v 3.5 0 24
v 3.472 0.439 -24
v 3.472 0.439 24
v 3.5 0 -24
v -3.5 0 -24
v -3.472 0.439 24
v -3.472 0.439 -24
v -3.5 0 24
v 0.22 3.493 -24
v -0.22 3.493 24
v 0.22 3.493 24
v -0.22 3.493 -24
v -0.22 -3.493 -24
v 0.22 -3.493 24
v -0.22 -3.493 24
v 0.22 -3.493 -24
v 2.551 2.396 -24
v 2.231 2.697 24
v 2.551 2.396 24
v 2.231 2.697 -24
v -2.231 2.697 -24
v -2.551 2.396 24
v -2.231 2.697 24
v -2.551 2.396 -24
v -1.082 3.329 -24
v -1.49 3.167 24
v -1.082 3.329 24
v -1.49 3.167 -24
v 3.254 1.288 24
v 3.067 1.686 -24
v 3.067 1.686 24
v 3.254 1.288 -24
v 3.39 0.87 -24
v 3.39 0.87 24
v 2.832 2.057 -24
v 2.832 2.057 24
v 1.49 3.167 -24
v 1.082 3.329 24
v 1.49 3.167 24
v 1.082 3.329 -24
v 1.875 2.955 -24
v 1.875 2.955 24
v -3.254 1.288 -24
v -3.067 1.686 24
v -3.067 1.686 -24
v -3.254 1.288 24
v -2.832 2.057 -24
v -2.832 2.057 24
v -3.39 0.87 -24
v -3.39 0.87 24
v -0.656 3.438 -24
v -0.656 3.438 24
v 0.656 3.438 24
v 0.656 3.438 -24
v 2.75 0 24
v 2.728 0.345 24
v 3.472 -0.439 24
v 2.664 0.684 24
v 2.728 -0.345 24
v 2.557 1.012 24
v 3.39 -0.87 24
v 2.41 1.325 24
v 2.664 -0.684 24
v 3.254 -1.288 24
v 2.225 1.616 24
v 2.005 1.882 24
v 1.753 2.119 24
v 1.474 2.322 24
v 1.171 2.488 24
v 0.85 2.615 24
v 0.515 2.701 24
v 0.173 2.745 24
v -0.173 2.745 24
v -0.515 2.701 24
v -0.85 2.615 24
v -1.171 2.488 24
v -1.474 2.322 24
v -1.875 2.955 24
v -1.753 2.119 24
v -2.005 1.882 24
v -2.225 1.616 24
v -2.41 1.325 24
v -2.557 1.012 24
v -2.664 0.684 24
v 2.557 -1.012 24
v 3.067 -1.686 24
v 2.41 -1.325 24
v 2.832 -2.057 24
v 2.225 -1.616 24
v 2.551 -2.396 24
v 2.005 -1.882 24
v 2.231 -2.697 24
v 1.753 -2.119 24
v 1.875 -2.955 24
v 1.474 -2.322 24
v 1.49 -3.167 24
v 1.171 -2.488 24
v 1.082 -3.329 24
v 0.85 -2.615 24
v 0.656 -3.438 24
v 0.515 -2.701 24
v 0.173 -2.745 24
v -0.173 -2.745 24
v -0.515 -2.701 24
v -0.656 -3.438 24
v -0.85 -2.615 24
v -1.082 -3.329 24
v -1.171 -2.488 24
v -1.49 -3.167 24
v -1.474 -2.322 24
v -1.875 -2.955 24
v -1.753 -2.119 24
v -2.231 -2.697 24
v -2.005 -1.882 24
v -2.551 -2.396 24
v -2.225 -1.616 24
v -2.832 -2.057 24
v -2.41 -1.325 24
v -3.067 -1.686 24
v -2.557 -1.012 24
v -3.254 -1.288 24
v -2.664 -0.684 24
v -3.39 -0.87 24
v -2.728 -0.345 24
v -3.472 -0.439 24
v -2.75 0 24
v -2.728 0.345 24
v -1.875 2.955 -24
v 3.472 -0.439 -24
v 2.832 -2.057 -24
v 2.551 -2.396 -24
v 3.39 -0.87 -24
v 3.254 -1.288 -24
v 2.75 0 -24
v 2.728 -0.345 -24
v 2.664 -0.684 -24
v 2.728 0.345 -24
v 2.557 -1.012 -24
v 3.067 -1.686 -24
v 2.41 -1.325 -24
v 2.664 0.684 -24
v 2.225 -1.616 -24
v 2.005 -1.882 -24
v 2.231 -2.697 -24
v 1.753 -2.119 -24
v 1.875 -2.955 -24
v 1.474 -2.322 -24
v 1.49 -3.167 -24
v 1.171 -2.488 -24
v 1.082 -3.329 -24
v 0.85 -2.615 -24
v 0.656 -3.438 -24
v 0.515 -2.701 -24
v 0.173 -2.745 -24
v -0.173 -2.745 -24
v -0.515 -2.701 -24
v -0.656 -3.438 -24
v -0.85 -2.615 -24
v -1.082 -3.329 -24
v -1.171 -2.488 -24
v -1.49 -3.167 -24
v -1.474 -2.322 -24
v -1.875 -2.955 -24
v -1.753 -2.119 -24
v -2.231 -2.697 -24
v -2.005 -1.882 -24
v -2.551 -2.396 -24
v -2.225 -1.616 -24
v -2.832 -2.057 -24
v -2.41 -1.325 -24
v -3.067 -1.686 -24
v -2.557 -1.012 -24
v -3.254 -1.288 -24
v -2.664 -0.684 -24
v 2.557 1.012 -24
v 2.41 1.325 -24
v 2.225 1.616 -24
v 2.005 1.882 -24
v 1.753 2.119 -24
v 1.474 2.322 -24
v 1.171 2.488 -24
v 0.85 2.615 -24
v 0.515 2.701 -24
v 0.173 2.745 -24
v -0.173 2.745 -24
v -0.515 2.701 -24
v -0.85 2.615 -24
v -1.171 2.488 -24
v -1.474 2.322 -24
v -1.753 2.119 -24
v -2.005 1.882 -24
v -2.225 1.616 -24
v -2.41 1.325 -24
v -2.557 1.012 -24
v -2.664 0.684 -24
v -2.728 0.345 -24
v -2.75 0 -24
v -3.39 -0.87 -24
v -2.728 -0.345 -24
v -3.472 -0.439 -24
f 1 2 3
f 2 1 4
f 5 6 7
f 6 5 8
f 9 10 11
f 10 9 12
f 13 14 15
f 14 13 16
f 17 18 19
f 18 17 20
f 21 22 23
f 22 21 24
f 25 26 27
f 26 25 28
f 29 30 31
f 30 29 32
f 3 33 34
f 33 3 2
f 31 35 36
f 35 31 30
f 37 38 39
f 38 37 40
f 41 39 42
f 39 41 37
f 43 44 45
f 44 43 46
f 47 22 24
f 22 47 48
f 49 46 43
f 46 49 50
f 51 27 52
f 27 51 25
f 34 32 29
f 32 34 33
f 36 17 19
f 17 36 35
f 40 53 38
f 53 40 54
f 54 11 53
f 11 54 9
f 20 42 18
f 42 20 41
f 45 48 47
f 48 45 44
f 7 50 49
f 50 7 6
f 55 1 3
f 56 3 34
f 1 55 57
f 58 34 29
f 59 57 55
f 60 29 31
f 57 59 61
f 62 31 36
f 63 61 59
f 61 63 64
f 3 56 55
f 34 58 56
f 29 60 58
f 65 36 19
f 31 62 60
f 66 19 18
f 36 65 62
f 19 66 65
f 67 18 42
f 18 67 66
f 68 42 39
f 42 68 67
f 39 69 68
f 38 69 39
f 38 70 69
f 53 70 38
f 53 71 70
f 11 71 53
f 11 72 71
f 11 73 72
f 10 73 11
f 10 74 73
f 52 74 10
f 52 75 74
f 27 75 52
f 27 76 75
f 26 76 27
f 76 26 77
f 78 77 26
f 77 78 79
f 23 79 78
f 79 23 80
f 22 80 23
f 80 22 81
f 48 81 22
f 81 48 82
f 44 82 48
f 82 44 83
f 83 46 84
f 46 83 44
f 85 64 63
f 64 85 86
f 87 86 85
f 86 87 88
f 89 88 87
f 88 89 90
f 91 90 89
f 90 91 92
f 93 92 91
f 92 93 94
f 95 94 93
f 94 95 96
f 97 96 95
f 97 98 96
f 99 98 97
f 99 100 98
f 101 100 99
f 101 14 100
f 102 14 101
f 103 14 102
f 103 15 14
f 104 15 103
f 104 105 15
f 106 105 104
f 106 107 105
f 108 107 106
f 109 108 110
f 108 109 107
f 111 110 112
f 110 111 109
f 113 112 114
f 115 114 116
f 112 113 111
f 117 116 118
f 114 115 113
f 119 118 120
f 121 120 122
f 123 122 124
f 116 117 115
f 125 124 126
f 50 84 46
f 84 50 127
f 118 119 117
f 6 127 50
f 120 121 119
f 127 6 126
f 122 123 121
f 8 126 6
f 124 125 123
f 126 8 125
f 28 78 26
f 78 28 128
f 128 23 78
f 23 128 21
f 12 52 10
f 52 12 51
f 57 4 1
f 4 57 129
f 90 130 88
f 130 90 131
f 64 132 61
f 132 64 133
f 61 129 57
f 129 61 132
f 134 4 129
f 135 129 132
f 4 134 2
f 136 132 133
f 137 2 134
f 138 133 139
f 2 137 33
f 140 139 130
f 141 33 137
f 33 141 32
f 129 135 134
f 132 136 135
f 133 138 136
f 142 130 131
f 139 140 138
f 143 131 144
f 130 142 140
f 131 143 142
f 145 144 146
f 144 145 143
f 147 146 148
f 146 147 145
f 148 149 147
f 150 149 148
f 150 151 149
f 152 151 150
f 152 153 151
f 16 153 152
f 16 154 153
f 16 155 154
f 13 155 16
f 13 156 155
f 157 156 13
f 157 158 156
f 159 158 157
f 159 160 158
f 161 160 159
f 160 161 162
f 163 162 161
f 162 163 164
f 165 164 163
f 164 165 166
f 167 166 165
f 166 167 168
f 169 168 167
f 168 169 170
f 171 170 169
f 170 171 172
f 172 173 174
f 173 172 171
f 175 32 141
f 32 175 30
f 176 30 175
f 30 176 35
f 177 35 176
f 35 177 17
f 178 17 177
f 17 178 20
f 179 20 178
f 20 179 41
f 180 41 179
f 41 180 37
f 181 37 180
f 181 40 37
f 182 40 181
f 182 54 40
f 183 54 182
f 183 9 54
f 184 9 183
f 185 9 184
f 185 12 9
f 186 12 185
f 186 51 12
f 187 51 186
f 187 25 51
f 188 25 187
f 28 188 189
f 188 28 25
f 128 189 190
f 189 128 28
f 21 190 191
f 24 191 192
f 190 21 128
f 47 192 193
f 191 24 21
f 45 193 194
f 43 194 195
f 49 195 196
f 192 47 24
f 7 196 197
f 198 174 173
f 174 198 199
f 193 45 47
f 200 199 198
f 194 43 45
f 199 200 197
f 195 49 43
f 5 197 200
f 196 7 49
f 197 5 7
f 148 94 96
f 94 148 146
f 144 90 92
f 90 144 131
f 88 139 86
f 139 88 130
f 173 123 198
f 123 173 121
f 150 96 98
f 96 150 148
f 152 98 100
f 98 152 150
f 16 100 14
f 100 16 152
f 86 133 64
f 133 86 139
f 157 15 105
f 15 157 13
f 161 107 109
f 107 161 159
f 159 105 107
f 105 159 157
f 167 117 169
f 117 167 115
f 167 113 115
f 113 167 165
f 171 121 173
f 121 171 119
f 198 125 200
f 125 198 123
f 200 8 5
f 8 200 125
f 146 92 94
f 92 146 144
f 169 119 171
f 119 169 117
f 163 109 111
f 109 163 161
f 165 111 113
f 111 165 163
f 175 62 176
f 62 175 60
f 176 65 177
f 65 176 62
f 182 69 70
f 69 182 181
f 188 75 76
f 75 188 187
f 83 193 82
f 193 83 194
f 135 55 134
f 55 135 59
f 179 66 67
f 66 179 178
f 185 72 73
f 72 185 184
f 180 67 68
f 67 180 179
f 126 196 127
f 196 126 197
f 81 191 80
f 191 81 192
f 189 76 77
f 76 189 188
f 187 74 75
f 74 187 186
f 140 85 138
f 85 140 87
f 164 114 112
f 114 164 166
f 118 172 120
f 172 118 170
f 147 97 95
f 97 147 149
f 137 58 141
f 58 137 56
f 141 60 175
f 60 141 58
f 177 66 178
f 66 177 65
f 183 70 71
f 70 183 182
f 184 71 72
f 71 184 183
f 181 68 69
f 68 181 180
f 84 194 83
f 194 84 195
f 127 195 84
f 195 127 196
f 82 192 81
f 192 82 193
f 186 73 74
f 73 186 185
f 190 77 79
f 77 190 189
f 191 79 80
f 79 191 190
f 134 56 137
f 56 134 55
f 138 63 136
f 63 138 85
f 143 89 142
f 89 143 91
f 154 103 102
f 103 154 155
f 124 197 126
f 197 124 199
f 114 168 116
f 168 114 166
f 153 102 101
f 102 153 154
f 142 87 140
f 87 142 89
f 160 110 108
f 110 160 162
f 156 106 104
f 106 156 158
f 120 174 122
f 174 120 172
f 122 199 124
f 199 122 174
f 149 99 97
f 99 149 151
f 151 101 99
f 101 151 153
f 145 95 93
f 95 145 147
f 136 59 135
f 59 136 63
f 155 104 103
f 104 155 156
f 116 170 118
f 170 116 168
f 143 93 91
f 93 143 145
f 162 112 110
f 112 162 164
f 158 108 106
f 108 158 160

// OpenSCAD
$fn = 50;


difference() {
	union() {
		translate(v = [0, 0, -24.0000000000]) {
			cylinder(h = 48, r = 3.5000000000);
		}
	}
	union() {
		translate(v = [0, 0, -100.0000000000]) {
			cylinder(h = 200, r = 2.7500000000);
		}
	}
}
